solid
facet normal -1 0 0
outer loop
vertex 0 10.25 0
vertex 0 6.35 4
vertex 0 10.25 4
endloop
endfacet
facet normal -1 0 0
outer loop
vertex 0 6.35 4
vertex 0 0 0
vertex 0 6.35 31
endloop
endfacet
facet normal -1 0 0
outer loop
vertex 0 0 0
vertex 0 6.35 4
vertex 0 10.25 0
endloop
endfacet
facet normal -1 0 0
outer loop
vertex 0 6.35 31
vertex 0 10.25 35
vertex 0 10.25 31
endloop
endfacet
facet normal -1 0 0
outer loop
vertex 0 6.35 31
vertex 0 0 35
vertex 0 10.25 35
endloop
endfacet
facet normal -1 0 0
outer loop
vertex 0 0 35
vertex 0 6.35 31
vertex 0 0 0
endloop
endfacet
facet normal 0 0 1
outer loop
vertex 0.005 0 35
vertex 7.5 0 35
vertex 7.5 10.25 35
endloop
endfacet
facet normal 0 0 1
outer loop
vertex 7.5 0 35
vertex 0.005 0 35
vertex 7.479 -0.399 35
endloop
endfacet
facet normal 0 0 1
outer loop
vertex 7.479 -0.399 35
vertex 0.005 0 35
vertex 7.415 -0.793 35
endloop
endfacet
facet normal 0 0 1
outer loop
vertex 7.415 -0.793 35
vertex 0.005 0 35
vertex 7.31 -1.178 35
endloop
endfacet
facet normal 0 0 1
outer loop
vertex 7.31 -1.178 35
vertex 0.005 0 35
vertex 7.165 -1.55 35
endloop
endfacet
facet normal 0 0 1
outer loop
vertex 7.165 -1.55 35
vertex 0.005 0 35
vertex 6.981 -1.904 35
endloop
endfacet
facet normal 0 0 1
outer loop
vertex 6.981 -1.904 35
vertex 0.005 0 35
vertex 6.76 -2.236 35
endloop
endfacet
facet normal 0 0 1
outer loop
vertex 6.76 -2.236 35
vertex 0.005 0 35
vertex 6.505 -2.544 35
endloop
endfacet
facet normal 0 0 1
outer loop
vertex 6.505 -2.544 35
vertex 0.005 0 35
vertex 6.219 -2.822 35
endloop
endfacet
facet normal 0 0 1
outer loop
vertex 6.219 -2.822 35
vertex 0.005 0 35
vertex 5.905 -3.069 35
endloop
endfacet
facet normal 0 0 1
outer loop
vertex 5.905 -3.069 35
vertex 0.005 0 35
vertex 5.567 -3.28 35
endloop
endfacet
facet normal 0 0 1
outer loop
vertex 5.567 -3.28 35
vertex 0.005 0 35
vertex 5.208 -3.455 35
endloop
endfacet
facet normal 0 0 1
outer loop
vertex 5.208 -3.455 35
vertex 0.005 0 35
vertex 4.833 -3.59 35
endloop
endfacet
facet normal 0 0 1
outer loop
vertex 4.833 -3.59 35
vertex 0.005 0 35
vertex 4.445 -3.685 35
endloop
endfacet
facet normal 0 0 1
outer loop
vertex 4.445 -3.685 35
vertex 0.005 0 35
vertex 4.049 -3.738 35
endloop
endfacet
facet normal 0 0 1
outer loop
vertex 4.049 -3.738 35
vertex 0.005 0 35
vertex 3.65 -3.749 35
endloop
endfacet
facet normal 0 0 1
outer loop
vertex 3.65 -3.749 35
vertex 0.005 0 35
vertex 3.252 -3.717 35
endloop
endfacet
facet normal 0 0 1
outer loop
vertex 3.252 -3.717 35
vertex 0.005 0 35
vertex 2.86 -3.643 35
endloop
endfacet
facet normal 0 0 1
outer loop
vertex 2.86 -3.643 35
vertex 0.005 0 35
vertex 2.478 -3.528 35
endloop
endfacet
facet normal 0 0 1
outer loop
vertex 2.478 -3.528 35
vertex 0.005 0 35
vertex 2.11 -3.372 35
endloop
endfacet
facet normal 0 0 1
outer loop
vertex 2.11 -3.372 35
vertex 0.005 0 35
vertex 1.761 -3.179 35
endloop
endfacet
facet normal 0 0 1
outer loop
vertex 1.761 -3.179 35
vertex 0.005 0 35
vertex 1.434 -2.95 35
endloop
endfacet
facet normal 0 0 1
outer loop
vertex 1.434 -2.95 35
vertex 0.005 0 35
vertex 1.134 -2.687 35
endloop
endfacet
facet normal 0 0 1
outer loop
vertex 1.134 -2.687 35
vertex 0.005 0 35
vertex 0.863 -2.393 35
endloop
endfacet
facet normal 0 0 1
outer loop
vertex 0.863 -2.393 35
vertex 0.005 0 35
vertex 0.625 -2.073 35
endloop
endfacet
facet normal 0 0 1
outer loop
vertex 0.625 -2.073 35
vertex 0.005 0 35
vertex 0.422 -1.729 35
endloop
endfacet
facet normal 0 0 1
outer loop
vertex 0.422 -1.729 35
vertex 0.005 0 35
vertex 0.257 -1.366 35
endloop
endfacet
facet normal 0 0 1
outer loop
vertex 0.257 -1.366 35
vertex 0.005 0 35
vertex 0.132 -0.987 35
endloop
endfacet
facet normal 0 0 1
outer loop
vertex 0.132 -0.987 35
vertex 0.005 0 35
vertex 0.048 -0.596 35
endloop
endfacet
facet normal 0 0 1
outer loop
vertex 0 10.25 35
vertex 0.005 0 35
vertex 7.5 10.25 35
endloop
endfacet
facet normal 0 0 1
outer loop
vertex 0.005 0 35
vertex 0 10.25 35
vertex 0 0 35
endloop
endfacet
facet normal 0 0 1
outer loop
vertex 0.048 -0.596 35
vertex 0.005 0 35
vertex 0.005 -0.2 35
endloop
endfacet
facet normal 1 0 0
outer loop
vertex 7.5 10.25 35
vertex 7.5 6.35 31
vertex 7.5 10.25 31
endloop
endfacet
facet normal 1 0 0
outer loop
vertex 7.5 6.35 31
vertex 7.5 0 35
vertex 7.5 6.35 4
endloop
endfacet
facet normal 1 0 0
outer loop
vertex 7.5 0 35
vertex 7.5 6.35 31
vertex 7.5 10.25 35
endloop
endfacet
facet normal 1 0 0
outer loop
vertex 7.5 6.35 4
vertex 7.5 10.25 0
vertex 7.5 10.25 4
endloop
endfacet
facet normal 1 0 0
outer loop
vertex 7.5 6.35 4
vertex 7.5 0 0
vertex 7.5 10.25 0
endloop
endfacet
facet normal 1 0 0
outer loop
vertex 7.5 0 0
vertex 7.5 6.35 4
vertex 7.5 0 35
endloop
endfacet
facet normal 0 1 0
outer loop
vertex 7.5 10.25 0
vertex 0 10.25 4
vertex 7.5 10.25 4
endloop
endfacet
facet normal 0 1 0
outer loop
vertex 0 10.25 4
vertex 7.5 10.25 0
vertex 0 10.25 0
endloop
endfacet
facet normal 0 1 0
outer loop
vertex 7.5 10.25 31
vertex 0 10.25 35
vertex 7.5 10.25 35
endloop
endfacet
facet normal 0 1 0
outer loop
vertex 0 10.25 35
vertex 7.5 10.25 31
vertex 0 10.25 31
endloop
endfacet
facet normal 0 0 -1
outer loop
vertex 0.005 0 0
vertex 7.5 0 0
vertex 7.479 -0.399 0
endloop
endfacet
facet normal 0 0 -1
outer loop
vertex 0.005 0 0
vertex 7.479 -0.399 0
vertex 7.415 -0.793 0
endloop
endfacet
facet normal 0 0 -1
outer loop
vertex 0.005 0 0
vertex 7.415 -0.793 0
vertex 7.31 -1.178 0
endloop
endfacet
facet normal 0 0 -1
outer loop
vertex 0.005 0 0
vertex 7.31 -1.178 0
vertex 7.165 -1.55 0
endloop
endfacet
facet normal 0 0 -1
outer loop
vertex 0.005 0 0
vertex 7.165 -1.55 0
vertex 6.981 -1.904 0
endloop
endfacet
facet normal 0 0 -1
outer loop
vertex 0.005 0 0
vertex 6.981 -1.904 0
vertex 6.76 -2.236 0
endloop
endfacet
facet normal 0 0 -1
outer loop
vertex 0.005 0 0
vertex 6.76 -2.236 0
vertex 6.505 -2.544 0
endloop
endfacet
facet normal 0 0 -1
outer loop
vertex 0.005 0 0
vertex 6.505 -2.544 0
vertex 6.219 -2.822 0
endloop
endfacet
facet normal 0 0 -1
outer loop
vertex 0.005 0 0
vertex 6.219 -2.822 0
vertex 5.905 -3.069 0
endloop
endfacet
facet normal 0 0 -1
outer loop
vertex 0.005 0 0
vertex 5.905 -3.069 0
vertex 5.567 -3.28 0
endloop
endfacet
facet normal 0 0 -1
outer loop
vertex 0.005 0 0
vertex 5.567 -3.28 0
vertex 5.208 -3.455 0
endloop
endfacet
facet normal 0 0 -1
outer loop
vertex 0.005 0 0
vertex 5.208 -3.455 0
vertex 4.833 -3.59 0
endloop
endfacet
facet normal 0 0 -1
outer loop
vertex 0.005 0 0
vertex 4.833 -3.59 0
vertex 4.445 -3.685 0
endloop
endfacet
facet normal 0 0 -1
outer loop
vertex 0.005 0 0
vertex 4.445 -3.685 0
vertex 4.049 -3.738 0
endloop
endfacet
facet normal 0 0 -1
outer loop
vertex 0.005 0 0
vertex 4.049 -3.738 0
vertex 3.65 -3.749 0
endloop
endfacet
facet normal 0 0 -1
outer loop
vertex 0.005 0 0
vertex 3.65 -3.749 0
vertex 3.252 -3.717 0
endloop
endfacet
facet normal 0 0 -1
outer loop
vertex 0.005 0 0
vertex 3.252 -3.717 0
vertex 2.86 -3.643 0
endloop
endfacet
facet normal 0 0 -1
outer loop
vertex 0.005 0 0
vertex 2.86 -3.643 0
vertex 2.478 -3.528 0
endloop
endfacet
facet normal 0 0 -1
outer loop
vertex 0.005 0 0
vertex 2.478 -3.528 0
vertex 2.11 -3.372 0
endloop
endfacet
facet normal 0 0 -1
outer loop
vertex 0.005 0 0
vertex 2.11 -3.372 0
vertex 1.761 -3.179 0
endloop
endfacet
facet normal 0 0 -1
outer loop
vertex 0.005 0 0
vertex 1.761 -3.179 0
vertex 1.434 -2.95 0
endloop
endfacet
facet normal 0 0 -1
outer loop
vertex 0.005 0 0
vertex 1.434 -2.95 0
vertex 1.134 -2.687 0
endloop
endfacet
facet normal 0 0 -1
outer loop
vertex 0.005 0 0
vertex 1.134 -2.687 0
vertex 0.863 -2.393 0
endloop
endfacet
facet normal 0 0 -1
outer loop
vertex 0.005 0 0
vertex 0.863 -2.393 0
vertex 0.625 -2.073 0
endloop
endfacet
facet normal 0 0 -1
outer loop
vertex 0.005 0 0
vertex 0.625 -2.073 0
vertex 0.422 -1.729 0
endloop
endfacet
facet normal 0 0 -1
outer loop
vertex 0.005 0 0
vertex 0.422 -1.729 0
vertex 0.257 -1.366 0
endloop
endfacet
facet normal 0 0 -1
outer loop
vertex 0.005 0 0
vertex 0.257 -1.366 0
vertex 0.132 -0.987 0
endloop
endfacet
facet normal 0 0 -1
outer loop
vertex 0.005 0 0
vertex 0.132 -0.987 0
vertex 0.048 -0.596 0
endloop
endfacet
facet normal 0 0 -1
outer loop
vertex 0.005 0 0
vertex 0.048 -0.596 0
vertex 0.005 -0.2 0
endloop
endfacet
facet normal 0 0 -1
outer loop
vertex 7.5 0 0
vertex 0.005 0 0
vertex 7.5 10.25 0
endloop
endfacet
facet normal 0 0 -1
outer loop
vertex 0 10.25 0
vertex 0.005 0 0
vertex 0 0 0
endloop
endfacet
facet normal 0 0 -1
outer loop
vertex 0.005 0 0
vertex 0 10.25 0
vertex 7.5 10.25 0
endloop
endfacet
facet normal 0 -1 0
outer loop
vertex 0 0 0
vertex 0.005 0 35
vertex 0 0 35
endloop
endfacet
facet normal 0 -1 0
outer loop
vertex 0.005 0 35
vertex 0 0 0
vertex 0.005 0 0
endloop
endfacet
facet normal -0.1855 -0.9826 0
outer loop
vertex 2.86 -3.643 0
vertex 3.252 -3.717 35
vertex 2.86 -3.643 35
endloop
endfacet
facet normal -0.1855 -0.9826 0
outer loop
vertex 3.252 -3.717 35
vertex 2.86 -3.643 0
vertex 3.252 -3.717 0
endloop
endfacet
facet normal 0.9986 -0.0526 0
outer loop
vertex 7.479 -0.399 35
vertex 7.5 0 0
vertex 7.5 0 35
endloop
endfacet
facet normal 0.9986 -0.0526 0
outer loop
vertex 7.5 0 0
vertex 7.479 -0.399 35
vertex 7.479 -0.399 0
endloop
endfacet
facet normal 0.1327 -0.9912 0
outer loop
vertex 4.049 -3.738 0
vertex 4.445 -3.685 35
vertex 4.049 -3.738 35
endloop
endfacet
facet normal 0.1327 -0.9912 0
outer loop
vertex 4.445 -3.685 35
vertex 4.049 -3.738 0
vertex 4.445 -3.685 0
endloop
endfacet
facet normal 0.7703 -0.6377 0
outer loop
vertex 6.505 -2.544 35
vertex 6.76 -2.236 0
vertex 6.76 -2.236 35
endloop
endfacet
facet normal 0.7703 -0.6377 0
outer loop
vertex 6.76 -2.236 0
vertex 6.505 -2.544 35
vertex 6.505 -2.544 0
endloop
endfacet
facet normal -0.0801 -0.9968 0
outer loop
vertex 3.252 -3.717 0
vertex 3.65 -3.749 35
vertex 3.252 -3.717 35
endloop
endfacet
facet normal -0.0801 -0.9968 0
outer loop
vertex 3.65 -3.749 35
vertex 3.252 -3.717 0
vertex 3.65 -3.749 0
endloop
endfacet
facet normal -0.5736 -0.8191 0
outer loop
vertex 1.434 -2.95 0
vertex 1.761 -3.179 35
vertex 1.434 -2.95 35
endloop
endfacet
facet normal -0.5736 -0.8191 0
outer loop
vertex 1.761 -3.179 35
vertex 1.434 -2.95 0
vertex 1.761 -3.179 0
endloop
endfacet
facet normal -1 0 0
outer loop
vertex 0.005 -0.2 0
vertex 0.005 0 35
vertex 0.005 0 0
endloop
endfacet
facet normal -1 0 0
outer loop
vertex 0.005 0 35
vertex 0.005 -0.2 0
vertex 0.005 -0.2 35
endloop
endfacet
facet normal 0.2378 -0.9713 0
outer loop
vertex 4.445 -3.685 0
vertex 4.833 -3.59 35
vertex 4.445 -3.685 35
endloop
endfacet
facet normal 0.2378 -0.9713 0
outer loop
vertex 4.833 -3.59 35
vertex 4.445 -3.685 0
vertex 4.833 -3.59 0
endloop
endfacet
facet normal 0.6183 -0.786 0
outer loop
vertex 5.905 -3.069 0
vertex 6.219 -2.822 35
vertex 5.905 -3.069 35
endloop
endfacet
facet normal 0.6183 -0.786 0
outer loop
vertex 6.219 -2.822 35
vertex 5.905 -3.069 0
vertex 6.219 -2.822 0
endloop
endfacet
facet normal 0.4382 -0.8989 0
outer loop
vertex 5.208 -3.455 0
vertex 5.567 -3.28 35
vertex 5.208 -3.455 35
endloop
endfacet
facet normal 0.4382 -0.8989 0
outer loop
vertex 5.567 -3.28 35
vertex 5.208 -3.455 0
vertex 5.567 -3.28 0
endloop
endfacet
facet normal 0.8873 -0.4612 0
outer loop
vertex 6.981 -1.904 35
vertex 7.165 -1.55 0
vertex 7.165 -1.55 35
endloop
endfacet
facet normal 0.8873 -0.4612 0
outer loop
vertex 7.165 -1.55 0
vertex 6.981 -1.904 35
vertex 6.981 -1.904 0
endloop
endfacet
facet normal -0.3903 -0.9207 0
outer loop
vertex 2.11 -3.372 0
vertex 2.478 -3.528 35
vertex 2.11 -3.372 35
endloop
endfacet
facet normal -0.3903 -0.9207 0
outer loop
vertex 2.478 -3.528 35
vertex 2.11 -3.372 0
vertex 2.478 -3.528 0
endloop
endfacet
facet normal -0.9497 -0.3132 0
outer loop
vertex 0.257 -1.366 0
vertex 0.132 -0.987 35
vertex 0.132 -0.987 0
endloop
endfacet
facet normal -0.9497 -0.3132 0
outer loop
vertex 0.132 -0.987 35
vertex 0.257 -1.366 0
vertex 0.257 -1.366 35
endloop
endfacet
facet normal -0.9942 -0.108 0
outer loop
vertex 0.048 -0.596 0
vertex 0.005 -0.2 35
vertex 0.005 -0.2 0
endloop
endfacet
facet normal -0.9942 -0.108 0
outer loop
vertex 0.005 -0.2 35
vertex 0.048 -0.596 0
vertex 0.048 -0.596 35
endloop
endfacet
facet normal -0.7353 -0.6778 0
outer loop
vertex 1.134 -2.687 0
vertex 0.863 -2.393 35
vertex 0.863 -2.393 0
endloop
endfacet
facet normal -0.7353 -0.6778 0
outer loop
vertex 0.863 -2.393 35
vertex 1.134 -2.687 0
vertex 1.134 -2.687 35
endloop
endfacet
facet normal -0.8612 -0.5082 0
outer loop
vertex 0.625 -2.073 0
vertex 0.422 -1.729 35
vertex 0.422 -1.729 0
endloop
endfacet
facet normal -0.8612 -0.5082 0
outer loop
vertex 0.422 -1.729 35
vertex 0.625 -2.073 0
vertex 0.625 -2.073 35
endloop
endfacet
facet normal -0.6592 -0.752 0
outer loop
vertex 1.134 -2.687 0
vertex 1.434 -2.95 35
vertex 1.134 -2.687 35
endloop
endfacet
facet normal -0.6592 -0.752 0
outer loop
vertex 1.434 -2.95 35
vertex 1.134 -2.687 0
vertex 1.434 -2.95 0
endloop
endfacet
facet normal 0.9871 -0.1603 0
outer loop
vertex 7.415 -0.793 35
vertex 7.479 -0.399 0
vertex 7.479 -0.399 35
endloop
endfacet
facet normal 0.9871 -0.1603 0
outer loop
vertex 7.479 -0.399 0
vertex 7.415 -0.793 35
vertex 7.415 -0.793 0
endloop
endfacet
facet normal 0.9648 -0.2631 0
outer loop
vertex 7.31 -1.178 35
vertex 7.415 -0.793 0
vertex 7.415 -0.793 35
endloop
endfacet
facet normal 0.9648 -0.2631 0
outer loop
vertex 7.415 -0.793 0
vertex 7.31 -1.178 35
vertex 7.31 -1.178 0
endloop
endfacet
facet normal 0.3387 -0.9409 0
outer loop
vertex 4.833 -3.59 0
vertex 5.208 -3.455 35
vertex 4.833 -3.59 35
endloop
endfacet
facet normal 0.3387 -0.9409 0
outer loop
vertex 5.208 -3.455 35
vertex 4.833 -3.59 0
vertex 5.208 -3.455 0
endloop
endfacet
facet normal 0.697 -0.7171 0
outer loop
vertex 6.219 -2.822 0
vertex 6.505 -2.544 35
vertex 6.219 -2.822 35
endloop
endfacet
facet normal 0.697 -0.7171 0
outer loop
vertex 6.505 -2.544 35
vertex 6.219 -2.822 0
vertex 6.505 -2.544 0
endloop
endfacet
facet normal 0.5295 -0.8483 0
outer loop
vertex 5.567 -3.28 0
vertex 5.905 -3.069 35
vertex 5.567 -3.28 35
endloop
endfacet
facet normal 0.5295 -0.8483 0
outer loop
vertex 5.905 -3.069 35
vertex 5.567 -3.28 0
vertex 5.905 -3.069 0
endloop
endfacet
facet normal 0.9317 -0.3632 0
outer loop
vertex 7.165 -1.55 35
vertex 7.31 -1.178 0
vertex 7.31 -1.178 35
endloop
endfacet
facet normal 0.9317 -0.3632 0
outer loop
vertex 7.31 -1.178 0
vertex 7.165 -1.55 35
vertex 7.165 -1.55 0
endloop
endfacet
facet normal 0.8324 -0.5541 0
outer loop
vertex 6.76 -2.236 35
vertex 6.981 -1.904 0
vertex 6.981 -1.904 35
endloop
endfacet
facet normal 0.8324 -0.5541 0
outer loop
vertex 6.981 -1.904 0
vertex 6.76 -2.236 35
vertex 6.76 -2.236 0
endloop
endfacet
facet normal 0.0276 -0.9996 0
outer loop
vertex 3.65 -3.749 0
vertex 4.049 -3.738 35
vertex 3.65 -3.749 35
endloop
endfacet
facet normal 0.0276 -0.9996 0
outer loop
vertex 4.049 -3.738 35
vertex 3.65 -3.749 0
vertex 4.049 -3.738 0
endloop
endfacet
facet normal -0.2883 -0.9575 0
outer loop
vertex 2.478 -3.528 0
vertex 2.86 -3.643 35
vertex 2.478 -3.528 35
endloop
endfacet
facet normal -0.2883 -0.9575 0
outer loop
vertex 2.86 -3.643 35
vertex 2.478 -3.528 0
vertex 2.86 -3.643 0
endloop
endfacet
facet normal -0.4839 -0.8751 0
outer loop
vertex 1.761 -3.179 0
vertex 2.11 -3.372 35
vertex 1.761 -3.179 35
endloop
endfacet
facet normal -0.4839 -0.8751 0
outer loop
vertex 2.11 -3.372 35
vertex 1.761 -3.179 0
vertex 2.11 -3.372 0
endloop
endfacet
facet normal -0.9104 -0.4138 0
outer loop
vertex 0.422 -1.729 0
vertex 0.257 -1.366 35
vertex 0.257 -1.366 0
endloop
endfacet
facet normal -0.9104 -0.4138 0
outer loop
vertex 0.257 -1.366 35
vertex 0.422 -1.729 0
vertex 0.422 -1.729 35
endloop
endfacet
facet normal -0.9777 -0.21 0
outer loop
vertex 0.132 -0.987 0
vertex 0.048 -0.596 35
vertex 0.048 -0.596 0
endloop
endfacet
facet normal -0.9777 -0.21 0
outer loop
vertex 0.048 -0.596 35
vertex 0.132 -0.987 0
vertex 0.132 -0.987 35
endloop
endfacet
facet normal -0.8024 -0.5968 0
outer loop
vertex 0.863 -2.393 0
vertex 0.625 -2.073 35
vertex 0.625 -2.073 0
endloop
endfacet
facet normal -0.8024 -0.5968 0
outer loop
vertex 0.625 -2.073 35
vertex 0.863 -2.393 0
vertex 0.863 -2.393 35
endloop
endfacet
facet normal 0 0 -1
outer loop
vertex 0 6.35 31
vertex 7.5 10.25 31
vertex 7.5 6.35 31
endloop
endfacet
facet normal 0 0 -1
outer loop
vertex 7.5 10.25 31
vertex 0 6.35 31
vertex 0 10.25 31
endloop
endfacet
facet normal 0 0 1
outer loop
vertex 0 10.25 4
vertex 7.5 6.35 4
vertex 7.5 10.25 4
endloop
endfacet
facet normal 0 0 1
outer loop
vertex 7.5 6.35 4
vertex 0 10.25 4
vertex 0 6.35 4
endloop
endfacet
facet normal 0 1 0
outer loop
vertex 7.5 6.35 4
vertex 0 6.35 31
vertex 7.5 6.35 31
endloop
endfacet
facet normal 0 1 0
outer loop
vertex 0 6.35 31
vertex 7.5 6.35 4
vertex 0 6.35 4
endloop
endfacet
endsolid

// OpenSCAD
// variables (mm)
$fa = 1;
$fs = 0.4;

clip_length = 35;
clip_radius = 7.5 / 2; // 18 mm outer diameter

// the length to the inside of the hook is 22 mm - 8 for cover box thickness
clip_depth = 22 - 8;

opening_margin = 4;
opening_depth = 4;
epsilon = 0.1;


difference() {
    
// rounded cube
union() {
cube([clip_radius*2,clip_depth-clip_radius,clip_length]);
    
translate([clip_radius, 0, 0]) cylinder(h=clip_length, r1=clip_radius, r2=clip_radius, center=false);
}
  
// cut out
translate([-epsilon,clip_depth-clip_radius-opening_depth+epsilon,opening_margin]) cube([clip_radius*2+2*epsilon,clip_depth-clip_radius-opening_depth+epsilon,clip_length-2*opening_margin]);

}
